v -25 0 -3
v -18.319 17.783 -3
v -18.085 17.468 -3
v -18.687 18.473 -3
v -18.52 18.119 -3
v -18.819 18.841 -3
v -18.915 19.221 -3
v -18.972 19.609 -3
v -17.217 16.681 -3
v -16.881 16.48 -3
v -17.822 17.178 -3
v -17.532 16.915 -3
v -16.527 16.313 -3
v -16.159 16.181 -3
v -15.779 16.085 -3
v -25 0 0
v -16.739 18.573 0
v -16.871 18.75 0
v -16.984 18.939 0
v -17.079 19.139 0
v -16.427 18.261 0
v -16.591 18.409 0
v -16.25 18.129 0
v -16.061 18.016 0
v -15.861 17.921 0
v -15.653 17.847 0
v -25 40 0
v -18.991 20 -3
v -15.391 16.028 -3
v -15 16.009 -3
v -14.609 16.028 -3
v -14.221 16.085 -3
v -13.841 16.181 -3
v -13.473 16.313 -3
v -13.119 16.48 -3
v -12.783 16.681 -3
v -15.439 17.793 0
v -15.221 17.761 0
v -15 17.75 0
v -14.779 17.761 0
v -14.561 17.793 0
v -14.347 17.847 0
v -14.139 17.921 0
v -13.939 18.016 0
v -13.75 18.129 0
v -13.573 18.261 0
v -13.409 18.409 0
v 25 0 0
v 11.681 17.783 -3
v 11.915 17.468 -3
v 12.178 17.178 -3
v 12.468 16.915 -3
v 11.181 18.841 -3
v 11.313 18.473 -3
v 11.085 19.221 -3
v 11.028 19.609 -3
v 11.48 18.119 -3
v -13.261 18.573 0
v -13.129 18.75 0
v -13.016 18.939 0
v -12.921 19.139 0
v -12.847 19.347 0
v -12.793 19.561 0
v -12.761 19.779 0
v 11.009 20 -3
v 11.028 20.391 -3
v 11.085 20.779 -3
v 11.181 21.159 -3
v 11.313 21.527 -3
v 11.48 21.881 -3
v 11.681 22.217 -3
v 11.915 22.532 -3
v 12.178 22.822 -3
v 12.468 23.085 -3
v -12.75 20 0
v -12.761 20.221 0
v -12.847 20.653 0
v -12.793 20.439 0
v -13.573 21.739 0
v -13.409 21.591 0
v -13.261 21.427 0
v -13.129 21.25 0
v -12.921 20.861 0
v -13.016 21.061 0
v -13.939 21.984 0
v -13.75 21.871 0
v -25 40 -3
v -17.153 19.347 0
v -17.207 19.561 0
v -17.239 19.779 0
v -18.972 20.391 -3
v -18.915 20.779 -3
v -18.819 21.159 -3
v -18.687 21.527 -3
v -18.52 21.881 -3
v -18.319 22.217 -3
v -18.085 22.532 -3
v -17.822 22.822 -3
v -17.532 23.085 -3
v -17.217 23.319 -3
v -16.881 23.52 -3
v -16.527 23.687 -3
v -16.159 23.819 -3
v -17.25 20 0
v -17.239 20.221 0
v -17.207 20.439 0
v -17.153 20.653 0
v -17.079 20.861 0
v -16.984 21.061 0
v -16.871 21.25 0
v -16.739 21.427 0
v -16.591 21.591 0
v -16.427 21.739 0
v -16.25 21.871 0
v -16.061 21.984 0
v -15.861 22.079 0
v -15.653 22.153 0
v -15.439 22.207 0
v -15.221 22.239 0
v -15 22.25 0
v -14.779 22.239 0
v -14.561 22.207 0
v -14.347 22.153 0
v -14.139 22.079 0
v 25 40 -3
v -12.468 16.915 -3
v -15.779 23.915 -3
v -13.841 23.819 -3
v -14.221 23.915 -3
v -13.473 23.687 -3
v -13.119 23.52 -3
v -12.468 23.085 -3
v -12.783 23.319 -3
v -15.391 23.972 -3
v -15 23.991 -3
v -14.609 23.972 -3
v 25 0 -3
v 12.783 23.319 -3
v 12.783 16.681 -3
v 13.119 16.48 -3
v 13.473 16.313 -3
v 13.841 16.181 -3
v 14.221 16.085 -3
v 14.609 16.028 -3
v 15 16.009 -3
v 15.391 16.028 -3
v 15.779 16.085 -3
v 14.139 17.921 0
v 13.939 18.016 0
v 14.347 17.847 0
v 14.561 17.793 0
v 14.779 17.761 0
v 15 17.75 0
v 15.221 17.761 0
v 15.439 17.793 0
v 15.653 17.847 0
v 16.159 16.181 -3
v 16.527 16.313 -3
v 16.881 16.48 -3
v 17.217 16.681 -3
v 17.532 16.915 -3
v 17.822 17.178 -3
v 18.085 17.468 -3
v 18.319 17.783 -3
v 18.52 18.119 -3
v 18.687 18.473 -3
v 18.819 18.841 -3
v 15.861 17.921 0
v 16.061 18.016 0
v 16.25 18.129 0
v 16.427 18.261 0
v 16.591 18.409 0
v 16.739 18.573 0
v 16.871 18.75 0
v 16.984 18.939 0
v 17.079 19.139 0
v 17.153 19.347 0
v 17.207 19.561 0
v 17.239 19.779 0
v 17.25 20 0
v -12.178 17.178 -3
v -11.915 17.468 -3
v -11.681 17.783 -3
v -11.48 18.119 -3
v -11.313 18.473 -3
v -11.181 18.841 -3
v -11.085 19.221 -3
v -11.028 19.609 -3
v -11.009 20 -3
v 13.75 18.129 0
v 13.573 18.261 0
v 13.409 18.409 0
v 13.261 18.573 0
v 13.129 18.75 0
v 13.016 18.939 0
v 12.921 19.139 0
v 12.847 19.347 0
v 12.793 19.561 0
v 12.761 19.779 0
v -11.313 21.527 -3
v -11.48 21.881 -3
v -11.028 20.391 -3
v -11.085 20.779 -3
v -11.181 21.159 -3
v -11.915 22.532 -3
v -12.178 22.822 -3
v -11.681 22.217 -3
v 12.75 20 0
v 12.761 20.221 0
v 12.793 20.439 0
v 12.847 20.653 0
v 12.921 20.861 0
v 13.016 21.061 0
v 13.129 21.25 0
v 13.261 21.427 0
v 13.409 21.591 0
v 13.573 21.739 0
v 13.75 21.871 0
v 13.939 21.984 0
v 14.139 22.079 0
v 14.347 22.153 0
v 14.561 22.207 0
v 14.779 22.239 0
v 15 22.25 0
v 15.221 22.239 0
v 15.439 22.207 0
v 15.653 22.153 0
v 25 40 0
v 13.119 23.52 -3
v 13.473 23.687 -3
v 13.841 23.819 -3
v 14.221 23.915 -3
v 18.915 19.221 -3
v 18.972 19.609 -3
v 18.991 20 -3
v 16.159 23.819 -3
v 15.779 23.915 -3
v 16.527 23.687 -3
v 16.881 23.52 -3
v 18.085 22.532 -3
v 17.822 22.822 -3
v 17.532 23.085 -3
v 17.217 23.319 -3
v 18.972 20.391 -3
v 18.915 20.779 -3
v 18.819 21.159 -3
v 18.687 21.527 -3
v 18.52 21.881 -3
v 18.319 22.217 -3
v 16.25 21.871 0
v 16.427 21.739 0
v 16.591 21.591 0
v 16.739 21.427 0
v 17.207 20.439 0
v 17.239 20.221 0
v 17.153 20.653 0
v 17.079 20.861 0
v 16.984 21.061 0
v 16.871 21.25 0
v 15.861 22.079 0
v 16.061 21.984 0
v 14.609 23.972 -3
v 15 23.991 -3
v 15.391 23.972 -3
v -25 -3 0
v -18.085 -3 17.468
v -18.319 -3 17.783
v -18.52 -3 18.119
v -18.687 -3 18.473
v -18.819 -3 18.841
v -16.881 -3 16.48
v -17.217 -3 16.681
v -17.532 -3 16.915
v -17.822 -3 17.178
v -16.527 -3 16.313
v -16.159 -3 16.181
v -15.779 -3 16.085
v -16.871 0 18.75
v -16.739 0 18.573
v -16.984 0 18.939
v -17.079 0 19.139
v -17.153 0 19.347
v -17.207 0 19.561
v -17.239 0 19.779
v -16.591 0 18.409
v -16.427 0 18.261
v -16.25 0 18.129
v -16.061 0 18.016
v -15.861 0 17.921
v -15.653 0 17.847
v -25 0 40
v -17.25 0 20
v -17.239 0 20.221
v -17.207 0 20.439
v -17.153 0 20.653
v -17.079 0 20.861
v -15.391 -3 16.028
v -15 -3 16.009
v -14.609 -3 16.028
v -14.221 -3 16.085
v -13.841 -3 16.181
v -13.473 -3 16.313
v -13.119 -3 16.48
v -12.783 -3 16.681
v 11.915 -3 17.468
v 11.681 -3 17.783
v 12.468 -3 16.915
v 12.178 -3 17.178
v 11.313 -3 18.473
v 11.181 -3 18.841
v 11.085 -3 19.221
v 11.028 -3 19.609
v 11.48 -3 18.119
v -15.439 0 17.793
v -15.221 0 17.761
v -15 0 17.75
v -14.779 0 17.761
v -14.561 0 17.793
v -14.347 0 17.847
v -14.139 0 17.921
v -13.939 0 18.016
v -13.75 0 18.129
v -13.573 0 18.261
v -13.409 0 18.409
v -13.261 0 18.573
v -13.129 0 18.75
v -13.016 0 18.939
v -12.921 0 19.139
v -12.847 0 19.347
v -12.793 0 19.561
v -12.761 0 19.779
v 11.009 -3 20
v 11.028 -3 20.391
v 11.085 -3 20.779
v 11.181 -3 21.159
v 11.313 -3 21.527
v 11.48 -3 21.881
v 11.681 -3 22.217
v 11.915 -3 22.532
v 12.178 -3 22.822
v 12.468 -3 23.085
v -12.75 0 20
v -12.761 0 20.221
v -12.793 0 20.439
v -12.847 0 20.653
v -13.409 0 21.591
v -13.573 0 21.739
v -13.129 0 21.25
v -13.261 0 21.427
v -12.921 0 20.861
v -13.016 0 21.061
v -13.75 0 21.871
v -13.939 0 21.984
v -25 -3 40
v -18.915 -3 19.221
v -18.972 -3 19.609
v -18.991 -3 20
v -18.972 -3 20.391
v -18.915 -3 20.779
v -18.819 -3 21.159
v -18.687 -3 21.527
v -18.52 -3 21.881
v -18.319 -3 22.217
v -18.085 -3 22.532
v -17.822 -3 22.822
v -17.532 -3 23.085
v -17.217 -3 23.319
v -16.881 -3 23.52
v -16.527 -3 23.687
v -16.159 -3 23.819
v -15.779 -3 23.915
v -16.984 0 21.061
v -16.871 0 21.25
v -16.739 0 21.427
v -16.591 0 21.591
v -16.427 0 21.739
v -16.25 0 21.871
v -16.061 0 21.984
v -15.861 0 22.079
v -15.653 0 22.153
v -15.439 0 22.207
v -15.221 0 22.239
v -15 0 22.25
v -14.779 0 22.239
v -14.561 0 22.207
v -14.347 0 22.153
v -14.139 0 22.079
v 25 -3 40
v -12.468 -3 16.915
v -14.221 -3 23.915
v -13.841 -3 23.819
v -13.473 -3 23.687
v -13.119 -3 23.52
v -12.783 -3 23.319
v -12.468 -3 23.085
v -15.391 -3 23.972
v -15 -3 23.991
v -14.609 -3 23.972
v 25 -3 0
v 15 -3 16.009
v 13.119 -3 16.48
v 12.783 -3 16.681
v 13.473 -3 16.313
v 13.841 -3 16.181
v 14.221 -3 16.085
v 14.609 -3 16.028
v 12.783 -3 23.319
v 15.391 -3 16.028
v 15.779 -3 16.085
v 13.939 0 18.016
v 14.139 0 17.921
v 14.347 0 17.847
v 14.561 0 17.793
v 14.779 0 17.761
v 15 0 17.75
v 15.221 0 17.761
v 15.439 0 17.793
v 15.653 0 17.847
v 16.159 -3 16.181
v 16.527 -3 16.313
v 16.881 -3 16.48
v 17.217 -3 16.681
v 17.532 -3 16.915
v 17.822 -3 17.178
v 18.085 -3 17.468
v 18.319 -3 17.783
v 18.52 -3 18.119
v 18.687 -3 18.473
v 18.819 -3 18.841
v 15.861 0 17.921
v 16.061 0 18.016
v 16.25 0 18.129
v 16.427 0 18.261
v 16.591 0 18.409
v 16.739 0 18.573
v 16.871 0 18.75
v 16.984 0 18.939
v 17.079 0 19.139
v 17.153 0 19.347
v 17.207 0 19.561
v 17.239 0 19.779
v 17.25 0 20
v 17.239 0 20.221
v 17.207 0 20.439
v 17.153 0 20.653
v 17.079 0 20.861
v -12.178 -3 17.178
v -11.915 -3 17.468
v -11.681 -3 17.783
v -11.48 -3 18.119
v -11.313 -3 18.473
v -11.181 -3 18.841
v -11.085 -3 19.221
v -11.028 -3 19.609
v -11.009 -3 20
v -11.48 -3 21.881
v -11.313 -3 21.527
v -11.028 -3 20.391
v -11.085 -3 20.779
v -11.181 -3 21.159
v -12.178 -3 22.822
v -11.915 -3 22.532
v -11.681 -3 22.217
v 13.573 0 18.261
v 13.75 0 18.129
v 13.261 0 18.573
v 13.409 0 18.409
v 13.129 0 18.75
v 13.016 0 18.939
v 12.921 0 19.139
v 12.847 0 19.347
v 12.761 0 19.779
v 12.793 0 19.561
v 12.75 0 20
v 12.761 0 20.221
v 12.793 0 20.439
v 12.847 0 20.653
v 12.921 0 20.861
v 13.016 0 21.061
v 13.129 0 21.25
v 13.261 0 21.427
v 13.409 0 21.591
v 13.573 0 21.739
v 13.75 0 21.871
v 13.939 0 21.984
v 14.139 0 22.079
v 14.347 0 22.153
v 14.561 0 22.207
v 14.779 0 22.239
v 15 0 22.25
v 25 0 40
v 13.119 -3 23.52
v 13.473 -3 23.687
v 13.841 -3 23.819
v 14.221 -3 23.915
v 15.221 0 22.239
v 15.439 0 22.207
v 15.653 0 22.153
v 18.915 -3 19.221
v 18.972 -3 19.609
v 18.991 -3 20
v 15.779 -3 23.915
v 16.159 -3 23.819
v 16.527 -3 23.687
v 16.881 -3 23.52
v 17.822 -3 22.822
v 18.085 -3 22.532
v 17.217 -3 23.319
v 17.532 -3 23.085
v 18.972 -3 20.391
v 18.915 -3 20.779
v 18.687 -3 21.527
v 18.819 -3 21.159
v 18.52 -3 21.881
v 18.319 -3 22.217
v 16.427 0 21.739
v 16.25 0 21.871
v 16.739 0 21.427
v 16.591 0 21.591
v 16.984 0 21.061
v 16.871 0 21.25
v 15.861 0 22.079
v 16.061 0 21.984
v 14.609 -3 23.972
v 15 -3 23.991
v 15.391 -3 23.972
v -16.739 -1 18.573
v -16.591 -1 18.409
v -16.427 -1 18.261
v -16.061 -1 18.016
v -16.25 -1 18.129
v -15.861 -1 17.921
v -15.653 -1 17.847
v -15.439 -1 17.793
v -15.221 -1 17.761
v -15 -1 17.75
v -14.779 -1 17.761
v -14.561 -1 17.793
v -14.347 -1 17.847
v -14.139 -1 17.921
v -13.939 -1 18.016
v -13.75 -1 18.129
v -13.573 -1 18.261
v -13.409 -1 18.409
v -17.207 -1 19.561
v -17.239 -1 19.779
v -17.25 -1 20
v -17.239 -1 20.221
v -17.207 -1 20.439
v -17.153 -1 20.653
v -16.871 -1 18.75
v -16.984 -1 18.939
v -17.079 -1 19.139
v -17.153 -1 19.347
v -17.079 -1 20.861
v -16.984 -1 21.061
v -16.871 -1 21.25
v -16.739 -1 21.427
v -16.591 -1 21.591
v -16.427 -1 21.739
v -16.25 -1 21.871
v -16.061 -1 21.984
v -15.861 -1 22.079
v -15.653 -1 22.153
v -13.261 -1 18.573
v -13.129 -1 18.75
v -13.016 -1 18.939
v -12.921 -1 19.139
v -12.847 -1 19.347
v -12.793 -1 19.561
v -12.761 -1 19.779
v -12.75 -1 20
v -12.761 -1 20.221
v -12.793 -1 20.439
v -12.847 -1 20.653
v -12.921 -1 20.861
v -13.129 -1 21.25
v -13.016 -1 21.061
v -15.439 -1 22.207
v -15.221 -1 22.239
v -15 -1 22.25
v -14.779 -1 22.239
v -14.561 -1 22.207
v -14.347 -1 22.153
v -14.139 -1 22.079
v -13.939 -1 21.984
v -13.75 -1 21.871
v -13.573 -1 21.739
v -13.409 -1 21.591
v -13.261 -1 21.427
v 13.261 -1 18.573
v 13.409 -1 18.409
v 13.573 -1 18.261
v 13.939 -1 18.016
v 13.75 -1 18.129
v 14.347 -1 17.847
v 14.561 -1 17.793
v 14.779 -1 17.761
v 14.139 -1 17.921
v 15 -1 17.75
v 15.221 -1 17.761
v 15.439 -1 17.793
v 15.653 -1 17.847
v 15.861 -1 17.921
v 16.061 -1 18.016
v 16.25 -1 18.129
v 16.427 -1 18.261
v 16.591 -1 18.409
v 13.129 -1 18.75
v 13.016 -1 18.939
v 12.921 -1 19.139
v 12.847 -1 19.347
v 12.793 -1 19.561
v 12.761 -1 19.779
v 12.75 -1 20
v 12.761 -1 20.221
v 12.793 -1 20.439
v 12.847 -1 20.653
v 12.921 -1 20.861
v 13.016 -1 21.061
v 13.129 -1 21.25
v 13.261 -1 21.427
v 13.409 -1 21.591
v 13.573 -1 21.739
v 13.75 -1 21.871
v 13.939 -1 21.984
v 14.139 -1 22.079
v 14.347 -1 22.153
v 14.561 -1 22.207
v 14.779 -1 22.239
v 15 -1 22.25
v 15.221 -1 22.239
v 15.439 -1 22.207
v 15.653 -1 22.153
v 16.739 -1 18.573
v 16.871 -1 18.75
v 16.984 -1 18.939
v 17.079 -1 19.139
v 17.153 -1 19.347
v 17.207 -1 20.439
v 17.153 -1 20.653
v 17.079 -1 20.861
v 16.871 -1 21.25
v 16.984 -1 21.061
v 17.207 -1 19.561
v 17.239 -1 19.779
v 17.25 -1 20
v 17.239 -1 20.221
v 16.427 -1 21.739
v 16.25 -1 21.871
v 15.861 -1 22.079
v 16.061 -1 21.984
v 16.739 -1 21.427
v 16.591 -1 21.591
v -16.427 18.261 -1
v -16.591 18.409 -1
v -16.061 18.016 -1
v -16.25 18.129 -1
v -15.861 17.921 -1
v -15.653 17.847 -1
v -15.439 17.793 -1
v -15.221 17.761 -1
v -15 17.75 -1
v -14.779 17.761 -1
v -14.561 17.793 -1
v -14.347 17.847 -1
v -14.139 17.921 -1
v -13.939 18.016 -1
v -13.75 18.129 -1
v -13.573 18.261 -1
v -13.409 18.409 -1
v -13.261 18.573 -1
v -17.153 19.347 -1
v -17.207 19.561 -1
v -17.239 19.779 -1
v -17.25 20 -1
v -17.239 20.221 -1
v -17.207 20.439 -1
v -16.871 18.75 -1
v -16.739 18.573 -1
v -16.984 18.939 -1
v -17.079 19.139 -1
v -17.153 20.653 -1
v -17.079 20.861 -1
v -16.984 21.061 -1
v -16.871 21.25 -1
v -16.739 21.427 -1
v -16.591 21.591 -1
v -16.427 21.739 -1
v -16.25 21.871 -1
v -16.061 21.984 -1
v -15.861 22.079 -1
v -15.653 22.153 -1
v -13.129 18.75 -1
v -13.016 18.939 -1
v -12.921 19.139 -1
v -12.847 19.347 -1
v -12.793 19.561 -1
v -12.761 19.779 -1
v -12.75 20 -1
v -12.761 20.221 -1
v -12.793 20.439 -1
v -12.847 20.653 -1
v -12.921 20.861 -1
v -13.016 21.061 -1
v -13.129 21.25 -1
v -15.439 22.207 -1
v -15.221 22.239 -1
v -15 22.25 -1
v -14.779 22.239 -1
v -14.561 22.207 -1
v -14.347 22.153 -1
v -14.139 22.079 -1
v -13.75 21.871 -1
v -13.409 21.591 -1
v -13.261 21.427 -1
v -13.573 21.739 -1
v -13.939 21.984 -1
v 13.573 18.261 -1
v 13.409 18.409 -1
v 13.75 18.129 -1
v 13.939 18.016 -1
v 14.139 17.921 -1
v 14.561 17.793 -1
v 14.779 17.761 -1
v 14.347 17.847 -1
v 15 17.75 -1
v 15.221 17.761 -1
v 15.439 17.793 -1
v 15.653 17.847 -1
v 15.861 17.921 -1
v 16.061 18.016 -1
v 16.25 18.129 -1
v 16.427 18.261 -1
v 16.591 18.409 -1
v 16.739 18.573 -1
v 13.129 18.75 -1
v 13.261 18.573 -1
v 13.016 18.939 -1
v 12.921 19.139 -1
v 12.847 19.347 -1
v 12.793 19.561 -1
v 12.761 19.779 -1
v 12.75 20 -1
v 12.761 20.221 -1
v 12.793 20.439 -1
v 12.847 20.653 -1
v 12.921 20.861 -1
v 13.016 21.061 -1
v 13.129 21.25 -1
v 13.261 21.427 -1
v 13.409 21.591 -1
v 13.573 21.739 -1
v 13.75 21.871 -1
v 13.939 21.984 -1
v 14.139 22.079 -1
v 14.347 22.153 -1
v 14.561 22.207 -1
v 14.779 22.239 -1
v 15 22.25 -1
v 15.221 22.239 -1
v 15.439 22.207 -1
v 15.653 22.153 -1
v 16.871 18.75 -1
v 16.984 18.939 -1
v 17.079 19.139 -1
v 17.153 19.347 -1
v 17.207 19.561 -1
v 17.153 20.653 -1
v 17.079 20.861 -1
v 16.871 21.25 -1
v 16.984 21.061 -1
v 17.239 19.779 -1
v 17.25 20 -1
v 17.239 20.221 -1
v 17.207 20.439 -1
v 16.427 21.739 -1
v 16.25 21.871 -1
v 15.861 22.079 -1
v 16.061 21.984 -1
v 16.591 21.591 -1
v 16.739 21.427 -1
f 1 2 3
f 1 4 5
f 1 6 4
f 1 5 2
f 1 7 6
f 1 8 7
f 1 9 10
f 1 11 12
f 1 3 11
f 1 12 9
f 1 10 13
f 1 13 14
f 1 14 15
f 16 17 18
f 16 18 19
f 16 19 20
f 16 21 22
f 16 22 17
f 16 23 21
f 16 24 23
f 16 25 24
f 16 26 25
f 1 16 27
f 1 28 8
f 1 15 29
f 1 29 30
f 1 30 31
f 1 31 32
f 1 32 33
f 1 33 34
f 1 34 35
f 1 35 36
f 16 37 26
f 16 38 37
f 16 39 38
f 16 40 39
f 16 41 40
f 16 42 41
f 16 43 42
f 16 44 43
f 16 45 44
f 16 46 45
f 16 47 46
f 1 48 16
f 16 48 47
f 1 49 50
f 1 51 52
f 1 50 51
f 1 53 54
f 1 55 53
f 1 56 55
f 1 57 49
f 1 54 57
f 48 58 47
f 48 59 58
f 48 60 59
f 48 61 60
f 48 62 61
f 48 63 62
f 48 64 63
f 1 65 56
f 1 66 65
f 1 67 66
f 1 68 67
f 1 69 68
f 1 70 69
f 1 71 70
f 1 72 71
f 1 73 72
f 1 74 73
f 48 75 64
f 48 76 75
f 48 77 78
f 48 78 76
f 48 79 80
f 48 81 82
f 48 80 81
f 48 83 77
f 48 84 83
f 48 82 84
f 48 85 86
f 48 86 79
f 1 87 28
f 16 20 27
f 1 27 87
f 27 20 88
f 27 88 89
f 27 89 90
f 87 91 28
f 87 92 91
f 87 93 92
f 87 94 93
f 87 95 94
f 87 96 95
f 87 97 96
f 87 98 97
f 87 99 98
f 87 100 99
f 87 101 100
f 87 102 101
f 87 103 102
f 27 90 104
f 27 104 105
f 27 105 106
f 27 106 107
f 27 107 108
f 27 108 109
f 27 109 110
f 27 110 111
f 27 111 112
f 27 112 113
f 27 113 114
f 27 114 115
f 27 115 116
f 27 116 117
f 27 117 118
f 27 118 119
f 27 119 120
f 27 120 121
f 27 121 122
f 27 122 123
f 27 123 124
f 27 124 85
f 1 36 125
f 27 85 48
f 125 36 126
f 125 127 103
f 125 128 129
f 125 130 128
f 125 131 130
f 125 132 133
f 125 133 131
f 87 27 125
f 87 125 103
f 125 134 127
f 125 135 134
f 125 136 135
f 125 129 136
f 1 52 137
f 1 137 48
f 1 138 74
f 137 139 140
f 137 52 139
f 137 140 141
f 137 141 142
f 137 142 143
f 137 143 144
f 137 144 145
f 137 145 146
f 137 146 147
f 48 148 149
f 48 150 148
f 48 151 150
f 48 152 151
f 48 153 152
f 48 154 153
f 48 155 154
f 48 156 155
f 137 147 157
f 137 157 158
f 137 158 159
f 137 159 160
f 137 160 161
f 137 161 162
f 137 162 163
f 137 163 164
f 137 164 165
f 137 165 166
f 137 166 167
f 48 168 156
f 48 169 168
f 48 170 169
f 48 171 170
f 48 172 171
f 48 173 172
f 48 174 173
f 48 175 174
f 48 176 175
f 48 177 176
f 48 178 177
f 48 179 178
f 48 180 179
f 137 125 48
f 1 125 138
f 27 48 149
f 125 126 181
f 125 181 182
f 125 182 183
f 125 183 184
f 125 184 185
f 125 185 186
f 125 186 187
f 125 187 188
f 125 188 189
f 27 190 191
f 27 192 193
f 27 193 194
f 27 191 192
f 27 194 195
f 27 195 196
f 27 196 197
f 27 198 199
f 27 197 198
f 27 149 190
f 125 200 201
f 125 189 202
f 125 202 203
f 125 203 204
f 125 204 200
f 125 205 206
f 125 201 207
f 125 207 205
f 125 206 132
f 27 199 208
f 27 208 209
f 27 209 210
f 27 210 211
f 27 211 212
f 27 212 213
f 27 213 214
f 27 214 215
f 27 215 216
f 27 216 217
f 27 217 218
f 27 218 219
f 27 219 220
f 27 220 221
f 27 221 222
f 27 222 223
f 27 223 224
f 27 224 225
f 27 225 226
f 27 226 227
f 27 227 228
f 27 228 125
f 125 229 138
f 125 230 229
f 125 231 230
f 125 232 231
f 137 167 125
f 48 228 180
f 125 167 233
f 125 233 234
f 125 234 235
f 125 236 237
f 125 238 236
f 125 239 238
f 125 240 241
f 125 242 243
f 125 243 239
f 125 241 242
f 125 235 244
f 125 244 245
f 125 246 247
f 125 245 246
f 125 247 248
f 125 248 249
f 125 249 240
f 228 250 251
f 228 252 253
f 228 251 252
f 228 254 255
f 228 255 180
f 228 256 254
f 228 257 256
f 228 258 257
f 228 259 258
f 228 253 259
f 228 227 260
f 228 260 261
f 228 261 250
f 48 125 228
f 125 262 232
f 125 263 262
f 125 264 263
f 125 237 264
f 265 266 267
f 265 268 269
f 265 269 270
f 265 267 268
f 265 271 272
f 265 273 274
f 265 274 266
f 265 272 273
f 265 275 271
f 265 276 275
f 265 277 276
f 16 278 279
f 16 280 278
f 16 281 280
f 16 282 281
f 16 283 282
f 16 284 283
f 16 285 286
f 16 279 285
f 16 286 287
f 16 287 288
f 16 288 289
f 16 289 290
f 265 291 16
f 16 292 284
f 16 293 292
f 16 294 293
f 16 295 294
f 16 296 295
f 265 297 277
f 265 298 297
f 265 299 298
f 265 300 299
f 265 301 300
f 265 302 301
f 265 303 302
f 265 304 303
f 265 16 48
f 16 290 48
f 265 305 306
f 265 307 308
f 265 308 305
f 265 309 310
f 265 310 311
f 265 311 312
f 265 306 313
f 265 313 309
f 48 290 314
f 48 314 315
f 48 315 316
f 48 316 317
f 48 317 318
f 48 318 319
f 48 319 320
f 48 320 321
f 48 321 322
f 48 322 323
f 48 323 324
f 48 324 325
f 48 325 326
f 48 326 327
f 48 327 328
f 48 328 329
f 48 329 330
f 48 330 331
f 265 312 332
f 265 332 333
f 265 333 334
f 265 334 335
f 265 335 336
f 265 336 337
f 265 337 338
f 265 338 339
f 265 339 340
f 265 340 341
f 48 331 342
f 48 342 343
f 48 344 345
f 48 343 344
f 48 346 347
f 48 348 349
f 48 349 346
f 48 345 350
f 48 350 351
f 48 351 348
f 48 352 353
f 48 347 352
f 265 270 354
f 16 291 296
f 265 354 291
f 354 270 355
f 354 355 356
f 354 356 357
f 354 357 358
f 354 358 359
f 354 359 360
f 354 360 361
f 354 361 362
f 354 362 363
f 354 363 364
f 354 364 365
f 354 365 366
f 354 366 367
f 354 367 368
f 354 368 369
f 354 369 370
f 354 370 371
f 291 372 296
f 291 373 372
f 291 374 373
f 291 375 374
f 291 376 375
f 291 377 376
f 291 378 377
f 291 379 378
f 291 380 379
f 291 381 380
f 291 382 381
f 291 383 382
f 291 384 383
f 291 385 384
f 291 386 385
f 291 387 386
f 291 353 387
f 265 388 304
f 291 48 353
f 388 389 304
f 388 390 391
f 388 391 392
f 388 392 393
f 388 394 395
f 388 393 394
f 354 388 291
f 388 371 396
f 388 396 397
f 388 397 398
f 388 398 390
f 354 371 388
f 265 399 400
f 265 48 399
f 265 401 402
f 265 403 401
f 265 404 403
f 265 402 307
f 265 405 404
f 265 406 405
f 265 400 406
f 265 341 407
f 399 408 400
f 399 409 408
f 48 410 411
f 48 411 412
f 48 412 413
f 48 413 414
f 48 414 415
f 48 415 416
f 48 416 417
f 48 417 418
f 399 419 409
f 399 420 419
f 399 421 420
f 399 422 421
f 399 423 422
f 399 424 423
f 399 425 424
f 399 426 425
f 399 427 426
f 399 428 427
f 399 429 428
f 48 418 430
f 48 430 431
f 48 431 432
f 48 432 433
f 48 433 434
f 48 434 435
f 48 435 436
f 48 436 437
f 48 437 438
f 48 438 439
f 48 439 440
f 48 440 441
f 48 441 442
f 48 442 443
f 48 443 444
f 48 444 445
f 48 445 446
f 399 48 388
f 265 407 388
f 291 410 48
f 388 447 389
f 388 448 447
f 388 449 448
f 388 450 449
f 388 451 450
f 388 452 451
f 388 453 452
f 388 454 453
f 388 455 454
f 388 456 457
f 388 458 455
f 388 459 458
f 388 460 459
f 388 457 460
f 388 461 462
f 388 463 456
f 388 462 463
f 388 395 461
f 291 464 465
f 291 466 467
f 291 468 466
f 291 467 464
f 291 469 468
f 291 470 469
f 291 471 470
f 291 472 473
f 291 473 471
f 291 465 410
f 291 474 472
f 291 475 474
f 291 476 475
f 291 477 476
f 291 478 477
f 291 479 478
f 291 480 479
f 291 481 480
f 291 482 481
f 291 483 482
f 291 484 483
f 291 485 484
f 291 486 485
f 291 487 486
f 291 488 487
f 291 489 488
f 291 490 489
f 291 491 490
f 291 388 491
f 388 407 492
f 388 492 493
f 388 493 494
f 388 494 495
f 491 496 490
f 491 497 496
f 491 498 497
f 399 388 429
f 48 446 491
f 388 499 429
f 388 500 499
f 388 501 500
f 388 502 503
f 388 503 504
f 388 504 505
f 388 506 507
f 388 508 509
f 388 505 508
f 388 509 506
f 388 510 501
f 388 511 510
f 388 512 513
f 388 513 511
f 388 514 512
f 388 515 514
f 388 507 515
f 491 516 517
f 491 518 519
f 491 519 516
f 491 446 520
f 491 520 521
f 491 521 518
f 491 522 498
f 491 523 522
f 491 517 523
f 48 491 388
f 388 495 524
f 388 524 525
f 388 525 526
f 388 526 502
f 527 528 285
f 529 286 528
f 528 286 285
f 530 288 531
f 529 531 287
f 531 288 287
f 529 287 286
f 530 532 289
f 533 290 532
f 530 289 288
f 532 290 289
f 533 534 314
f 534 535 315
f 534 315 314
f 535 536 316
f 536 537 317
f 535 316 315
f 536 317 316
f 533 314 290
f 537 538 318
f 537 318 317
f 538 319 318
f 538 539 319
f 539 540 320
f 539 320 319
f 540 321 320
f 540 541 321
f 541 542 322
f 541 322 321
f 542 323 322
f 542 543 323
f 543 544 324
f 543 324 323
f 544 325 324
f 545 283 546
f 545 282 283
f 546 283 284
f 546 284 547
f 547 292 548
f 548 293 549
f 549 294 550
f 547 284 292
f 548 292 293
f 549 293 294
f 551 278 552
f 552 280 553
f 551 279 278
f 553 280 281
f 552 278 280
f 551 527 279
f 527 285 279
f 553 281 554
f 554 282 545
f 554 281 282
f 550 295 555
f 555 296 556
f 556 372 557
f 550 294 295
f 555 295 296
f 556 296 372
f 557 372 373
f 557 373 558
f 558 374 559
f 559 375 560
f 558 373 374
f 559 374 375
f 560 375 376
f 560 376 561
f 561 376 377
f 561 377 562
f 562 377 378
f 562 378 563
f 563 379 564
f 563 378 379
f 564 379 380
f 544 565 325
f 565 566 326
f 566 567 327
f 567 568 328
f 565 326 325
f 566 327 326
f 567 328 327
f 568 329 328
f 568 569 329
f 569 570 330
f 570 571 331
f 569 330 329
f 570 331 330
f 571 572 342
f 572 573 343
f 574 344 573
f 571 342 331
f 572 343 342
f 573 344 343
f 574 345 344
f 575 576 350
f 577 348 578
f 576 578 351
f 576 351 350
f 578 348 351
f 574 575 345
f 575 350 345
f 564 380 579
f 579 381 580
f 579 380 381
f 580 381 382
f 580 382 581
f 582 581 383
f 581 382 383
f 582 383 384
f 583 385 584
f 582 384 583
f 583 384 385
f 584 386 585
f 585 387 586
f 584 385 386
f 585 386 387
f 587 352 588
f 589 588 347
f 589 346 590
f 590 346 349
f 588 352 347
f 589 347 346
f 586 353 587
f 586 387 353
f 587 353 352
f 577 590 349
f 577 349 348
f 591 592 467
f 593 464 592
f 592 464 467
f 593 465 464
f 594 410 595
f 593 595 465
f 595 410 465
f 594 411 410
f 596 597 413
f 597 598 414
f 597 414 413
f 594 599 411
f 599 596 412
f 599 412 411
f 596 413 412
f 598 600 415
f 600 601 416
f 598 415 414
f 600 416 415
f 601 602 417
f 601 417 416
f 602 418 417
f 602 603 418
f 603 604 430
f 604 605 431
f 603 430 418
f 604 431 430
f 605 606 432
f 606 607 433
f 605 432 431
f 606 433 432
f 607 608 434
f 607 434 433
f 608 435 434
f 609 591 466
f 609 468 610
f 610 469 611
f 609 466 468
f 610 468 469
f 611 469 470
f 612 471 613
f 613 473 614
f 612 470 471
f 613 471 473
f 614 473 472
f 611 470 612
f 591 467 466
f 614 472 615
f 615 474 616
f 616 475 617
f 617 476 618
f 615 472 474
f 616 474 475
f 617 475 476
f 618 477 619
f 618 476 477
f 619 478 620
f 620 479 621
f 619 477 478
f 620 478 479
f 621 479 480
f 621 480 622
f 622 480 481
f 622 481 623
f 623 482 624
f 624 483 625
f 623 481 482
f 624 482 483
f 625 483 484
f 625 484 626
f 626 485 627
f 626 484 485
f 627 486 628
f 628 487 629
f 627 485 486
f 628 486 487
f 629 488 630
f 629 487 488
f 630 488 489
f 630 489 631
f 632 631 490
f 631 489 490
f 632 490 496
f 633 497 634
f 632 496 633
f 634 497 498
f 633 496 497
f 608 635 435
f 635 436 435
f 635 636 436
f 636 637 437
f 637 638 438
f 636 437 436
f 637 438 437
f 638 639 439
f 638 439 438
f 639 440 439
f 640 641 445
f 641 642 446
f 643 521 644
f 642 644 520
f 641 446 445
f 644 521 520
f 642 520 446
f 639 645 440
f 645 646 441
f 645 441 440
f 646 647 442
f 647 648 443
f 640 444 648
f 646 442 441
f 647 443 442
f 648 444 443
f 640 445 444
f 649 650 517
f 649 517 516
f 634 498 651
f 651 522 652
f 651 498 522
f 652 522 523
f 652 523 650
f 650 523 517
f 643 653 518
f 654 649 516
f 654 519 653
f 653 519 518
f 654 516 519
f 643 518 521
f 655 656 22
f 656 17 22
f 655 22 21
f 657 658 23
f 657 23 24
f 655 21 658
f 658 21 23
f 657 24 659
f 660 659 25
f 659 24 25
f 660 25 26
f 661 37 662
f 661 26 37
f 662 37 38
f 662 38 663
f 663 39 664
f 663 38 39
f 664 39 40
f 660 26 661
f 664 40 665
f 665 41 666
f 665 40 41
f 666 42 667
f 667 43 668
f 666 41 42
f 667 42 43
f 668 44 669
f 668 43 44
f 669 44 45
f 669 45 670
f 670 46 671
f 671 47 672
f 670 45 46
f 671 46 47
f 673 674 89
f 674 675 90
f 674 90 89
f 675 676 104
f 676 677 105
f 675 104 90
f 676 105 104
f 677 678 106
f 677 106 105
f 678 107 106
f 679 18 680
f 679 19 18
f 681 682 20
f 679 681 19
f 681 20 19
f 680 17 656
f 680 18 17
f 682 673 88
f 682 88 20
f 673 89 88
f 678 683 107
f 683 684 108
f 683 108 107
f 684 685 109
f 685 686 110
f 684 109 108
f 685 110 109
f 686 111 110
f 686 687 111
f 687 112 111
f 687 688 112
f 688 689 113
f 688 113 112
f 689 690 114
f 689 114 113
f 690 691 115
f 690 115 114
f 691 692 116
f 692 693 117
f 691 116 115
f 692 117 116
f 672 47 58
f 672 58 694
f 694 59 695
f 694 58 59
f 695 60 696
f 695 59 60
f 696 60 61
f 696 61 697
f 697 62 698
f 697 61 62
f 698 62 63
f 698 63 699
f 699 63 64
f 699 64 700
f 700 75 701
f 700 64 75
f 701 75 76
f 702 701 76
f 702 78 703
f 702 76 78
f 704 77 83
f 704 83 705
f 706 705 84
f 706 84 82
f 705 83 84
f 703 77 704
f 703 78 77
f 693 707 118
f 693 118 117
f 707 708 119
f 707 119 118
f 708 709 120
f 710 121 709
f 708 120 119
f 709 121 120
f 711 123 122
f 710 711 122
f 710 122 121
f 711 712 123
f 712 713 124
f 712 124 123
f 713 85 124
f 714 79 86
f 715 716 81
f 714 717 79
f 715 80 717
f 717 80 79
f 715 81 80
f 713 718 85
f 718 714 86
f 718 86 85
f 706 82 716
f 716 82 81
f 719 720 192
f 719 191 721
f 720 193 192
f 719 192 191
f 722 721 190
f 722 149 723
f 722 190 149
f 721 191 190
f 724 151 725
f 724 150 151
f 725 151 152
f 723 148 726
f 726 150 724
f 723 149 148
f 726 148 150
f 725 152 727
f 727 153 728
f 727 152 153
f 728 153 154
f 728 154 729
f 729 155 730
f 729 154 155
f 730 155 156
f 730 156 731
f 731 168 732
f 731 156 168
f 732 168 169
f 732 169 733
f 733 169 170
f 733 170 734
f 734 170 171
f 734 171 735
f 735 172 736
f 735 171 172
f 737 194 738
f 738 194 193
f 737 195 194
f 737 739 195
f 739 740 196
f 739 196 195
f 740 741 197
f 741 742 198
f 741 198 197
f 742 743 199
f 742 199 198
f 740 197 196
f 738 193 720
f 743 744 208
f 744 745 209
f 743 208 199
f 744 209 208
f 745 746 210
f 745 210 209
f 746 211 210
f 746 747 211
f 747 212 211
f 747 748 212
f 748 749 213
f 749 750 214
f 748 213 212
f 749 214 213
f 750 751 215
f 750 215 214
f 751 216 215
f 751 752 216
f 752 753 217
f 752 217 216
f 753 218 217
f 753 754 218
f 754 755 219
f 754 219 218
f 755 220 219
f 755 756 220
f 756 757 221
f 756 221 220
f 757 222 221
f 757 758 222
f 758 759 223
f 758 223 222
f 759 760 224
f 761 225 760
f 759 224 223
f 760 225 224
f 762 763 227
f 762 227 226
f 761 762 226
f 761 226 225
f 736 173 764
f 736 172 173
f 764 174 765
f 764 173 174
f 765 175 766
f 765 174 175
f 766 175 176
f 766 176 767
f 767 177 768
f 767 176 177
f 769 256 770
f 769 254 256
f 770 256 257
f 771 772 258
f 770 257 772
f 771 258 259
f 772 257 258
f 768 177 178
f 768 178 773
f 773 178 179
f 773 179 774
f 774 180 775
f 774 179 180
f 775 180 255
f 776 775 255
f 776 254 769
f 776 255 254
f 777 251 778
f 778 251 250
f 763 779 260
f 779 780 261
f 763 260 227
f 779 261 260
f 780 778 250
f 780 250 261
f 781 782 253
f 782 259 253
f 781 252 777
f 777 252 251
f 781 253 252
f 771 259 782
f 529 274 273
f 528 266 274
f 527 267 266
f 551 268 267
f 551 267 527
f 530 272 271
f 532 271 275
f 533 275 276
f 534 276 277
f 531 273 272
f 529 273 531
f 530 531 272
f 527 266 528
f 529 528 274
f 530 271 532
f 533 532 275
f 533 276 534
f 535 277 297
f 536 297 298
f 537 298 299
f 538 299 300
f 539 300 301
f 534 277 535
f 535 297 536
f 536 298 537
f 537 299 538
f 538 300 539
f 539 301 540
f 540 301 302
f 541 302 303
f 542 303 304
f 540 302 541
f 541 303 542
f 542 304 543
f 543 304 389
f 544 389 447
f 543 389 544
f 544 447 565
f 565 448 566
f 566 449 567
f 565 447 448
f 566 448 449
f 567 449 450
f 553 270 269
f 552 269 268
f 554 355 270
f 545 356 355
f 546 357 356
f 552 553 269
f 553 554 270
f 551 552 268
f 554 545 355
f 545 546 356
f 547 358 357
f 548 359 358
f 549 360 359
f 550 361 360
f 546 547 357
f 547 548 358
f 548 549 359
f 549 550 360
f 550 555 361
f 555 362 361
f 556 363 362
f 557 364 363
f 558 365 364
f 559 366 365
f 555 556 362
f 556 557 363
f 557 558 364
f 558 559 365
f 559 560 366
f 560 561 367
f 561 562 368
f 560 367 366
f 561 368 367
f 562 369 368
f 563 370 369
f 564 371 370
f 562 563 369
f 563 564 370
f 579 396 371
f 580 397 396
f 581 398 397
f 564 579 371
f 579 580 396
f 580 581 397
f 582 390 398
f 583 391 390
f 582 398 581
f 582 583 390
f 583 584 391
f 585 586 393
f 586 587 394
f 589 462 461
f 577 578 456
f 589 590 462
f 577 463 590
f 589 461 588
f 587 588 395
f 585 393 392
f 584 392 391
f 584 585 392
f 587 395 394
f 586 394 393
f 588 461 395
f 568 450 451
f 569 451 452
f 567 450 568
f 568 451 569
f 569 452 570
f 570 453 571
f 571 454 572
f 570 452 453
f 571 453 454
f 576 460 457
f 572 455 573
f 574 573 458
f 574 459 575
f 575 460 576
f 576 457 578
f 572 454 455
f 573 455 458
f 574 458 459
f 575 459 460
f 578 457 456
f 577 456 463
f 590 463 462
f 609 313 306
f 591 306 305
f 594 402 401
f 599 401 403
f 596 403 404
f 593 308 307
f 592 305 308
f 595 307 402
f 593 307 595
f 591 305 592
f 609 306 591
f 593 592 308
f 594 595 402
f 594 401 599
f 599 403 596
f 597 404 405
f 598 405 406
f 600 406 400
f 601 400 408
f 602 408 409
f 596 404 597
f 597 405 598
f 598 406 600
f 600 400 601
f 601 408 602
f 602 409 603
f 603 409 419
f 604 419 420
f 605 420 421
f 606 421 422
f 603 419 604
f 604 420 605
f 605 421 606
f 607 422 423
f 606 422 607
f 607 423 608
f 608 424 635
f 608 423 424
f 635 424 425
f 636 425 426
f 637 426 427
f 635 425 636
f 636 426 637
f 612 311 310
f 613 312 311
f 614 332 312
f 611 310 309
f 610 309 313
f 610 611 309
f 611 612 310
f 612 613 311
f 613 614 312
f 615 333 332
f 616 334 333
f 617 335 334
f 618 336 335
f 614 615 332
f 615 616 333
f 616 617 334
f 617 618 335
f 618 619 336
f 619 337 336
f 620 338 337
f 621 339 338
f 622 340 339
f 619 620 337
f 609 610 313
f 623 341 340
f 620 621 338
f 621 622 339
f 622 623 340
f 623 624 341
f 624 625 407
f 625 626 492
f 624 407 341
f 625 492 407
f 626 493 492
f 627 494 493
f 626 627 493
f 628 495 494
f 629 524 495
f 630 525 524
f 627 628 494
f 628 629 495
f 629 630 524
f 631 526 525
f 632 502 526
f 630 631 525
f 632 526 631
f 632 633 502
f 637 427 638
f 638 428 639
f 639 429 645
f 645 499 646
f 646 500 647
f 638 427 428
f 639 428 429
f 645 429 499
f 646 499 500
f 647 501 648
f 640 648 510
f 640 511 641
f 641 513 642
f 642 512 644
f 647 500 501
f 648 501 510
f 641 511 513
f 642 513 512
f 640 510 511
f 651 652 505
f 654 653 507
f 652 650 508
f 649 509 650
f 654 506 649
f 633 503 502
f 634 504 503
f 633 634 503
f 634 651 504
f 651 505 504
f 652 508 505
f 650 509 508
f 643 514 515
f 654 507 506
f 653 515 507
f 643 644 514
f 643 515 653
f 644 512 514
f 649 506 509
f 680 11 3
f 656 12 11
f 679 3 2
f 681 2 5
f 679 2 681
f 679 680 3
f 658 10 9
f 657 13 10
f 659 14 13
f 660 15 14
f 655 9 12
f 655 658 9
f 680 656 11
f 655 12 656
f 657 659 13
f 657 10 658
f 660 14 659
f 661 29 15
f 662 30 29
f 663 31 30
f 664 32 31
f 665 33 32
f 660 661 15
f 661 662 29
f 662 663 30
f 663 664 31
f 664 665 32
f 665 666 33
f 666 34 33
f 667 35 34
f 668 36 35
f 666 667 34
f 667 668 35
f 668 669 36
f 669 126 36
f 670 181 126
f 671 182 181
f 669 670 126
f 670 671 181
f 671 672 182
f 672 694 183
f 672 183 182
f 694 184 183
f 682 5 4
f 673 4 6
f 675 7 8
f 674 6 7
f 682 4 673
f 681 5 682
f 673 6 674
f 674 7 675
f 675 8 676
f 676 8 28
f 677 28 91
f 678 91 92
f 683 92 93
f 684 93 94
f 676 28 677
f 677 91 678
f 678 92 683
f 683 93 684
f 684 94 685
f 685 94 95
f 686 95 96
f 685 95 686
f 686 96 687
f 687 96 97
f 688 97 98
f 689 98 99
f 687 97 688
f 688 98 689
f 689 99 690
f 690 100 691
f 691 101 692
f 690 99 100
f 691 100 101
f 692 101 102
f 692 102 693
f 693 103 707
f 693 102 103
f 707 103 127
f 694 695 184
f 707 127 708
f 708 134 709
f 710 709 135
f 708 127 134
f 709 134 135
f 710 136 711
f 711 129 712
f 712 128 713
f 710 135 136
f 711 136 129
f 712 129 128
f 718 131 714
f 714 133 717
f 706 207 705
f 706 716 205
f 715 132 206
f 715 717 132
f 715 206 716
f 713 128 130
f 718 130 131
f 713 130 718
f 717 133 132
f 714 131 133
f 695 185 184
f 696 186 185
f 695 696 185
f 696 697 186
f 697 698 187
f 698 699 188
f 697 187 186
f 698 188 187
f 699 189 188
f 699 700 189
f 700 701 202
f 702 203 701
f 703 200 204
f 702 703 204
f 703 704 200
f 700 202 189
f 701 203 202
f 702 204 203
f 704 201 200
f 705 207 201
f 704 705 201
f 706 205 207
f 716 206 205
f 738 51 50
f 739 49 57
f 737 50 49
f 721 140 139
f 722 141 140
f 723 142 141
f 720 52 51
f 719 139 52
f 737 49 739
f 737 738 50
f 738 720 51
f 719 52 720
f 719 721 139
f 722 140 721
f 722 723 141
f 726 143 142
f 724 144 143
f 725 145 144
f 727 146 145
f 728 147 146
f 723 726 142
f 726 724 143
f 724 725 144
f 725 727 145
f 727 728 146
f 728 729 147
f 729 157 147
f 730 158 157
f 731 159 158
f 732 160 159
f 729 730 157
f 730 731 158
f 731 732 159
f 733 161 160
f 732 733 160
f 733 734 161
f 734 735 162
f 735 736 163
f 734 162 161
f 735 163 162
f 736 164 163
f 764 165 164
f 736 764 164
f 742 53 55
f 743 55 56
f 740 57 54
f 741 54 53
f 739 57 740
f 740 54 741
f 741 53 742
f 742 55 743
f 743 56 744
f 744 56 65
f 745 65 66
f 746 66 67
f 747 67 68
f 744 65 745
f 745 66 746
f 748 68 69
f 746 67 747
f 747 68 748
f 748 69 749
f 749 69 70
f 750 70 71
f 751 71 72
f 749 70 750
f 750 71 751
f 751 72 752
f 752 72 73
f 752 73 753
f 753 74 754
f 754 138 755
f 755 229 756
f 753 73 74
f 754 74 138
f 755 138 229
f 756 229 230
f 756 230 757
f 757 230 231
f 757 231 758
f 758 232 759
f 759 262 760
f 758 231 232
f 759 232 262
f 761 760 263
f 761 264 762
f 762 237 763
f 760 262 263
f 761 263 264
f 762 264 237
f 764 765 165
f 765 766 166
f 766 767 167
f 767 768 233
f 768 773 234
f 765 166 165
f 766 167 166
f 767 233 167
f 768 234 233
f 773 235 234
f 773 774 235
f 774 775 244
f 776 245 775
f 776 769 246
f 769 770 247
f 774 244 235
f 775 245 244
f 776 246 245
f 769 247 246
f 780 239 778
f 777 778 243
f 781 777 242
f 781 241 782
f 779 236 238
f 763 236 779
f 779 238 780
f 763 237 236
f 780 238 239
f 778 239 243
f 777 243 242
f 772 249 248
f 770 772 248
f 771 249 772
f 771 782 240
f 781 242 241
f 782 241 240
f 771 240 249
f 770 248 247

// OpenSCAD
$fn = 64;

width = 50;
depth = 40;
height = 40;
thickness = 3;

hole_d = 4.5;
cs_d = 8.0;
cs_depth = 2.0;

module countersunk_hole() {
    // 貫通穴
    cylinder(d = hole_d, h = thickness + 2, center = true);
    // 皿座面 (円錐台)
    translate([0, 0, -thickness / 2 - 0.01])
        cylinder(d1 = cs_d, d2 = hole_d, h = cs_depth + 0.01);
}

difference() {
    // L字金具のベース形状
    union() {
        // 水平面
        translate([-width / 2, 0, -thickness])
            cube([width, depth, thickness]);
        // 垂直面
        translate([-width / 2, -thickness, 0])
            cube([width, thickness, height]);
    }

    // 水平面の皿穴 (外側: -Z 方向からボルト挿入)
    for (x = [-width / 2 + 10, width / 2 - 10]) {
        translate([x, depth / 2, -thickness / 2])
            countersunk_hole();
    }

    // 垂直面の皿穴 (外側: -Y 方向からボルト挿入)
    for (x = [-width / 2 + 10, width / 2 - 10]) {
        translate([x, -thickness / 2, height / 2])
            rotate([-90, 0, 0])
                countersunk_hole();
    }
}
